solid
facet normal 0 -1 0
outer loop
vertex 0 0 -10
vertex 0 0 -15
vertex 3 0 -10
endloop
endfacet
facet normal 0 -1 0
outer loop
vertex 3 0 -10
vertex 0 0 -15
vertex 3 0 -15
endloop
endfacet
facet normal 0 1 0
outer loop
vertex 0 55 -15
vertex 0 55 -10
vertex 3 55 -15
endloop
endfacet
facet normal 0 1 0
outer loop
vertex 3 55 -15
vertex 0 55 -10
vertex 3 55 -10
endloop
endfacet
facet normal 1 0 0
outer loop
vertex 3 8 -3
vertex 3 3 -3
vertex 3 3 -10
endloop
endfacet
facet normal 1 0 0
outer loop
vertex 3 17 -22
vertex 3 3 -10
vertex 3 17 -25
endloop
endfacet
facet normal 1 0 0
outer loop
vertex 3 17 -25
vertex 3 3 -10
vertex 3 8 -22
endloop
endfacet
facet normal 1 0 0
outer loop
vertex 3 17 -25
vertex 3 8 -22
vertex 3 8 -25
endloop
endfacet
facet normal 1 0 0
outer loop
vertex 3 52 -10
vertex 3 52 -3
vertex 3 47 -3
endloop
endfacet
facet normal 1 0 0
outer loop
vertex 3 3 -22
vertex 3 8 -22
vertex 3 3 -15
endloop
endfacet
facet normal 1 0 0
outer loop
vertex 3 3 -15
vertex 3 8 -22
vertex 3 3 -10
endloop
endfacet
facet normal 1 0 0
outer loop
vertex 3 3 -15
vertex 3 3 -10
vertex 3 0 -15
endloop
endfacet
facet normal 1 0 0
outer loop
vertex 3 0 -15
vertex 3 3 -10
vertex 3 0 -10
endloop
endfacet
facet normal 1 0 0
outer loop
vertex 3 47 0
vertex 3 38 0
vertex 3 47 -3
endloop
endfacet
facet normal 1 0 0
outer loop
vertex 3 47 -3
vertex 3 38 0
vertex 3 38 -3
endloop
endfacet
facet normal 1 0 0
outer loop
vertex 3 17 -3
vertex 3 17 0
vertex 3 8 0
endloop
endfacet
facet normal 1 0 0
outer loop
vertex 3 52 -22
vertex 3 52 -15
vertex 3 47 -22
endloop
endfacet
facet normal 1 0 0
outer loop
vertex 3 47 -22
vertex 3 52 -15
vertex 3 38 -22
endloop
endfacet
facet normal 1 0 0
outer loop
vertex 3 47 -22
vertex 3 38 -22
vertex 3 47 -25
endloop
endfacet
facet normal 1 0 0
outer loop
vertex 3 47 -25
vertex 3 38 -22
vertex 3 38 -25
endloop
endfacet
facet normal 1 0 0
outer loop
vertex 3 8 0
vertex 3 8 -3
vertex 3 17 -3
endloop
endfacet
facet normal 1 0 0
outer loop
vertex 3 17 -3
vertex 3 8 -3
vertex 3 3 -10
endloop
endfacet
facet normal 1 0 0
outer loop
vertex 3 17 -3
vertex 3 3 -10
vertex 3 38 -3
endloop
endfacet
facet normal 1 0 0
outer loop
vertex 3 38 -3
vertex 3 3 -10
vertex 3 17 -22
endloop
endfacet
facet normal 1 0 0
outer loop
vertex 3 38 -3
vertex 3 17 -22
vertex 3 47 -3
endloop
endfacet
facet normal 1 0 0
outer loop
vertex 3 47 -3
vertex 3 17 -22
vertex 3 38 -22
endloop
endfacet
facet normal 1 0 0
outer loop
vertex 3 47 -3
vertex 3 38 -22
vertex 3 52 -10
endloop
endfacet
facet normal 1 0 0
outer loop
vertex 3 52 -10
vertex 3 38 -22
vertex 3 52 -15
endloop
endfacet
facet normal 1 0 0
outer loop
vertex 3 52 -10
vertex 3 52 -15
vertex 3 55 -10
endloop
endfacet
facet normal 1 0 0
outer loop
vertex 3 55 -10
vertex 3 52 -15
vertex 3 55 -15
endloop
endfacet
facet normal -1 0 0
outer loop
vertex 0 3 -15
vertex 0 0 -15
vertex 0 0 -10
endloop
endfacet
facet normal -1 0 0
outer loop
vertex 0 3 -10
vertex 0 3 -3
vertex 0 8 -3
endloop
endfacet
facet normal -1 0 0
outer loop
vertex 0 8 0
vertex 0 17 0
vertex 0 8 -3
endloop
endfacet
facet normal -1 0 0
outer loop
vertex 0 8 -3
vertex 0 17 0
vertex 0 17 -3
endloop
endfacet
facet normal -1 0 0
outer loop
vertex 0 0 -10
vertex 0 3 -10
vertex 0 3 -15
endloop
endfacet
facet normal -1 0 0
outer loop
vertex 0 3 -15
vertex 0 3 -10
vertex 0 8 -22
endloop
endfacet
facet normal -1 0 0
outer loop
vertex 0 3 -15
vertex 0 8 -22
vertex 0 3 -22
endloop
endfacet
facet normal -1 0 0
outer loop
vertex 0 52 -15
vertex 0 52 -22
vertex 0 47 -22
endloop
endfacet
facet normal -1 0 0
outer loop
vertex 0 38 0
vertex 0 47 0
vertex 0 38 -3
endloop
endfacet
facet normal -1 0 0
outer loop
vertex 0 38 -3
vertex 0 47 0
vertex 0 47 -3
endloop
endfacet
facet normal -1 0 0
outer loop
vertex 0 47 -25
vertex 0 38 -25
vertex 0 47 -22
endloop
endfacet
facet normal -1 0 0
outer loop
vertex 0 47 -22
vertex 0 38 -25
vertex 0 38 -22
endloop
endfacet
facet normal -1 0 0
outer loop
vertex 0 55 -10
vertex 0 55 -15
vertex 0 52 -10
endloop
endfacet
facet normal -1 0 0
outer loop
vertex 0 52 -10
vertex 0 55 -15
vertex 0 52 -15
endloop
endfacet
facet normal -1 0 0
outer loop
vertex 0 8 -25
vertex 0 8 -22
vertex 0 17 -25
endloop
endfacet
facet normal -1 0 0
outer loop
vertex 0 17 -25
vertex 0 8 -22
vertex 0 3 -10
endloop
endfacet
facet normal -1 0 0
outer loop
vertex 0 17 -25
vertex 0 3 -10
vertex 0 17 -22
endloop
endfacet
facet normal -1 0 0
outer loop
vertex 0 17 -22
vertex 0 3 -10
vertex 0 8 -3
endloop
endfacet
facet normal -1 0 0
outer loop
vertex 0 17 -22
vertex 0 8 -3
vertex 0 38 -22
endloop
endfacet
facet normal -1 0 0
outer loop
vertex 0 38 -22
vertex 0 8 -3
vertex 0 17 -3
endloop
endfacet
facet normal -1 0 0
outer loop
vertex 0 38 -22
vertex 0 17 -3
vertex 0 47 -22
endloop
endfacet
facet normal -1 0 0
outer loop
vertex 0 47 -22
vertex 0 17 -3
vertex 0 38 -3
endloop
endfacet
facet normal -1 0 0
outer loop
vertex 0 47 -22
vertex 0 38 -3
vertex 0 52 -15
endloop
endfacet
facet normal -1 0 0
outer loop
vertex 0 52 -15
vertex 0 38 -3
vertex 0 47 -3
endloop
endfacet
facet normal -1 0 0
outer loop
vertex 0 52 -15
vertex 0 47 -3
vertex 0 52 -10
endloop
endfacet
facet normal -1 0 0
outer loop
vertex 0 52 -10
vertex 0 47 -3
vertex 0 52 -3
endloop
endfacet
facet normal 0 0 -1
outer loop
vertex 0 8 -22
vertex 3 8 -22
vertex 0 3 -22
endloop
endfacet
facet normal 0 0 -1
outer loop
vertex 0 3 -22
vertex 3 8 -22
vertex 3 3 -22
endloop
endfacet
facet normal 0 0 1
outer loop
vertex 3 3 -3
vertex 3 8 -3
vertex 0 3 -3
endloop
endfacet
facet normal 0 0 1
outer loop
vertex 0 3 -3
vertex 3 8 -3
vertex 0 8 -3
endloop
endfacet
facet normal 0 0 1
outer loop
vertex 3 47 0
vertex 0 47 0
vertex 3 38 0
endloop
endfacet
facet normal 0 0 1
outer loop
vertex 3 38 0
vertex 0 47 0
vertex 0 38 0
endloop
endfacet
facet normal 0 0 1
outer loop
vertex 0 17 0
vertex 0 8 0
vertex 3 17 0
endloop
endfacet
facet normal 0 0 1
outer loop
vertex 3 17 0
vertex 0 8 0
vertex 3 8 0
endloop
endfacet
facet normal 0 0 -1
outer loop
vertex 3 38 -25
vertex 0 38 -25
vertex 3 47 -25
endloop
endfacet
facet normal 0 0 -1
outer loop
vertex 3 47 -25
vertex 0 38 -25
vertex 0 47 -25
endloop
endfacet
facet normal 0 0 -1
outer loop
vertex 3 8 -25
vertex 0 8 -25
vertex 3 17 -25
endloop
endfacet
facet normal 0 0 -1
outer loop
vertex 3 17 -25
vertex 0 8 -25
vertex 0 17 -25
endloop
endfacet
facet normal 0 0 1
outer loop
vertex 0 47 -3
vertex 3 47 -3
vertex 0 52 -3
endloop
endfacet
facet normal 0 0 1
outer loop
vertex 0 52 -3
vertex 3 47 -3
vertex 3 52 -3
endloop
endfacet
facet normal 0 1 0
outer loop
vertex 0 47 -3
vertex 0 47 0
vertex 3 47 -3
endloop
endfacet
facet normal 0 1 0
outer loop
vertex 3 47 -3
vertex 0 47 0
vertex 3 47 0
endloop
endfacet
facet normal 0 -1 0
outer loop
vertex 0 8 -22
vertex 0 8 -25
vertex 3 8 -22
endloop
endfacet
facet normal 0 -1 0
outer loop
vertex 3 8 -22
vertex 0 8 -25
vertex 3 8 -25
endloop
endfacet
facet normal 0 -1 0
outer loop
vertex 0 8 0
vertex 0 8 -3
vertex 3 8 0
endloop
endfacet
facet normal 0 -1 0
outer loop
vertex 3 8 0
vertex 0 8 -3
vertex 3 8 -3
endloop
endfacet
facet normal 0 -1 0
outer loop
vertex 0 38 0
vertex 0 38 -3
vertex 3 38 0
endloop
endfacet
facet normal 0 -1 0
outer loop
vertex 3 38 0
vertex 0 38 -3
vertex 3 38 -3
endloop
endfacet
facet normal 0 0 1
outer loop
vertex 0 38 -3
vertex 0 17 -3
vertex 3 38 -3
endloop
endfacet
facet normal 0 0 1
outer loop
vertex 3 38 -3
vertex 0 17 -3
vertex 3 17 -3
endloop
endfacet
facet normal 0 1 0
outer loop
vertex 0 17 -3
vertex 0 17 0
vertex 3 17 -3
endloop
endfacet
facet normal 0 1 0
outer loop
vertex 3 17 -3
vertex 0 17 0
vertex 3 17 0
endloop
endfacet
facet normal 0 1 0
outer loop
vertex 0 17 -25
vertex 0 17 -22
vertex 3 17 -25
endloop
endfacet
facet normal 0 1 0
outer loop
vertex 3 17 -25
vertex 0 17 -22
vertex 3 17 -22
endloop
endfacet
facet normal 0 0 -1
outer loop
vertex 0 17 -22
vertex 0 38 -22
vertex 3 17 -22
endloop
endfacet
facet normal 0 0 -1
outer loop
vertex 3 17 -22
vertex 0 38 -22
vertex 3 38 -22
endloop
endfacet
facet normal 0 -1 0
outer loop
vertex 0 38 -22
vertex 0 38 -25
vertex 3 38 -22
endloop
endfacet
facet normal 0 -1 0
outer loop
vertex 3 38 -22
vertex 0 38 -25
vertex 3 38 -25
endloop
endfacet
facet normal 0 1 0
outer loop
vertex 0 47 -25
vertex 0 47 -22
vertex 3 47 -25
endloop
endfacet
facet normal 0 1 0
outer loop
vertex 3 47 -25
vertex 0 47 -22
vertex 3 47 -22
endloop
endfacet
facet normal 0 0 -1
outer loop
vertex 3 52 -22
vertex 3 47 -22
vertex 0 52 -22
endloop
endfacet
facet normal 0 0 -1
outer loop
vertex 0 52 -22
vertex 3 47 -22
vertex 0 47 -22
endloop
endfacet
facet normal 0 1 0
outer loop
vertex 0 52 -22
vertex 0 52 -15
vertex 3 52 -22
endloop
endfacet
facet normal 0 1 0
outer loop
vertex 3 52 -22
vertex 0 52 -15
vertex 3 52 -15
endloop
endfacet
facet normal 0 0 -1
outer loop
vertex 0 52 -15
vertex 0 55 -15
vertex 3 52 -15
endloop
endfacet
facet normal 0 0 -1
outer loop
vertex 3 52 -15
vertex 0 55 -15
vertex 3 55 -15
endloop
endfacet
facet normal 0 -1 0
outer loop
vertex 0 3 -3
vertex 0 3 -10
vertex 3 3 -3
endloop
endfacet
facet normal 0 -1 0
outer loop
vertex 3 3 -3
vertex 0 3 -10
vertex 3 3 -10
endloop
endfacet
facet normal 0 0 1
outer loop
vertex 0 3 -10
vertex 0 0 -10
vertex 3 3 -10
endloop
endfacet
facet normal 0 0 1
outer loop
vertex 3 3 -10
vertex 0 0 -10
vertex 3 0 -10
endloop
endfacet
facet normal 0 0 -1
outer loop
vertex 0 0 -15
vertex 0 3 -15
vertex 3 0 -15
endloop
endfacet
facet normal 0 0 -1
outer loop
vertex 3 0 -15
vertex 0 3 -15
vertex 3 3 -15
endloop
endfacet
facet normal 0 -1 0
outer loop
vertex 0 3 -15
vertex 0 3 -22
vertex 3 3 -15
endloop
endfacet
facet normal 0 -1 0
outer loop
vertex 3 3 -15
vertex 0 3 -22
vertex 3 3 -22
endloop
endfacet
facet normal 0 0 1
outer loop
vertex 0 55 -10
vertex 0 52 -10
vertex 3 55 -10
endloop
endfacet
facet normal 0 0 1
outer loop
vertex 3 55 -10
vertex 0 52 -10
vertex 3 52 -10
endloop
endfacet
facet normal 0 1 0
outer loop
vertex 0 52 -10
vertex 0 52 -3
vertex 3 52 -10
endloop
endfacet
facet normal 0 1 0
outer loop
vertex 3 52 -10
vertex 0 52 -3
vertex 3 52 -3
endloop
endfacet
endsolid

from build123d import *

# Parameters (mm, degrees)
SKETCH_2_W          = 25
SKETCH_2_H          = 55
EXTRUDE_1_DEPTH     = 3
SKETCH_3_W          = 3
SKETCH_3_H          = 8
SKETCH_3_H_2        = 21
CUT_EXTRUDE_1_DEPTH = 4
SKETCH_4_W          = 7
SKETCH_4_H          = 3
CUT_EXTRUDE_2_DEPTH = 4


with BuildPart() as part:
    # 스케치2 → 보스-돌출1 (new body)
    with BuildSketch(Plane(origin=(0, 0, 0), x_dir=(0, 0, -1), z_dir=(1, 0, 0))):
        with Locations((12.5, 27.5)):
            Rectangle(SKETCH_2_W, SKETCH_2_H)
    extrude(amount=EXTRUDE_1_DEPTH)

    # 스케치3 → 컷-돌출1 (cut, through all)
    with BuildSketch(Plane(origin=(3, 0, 0), x_dir=(0, 0, -1), z_dir=(1, 0, 0))):
        with Locations((1.5, 51)):
            Rectangle(SKETCH_3_W, SKETCH_3_H)
        with Locations((23.5, 51)):
            Rectangle(SKETCH_3_W, SKETCH_3_H)
        with Locations((23.5, 27.5)):
            Rectangle(SKETCH_3_W, SKETCH_3_H_2)
        with Locations((1.5, 27.5)):
            Rectangle(SKETCH_3_W, SKETCH_3_H_2)
        with Locations((1.5, 4)):
            Rectangle(SKETCH_3_W, SKETCH_3_H)
        with Locations((23.5, 4)):
            Rectangle(SKETCH_3_W, SKETCH_3_H)
    extrude(amount=-CUT_EXTRUDE_1_DEPTH, mode=Mode.SUBTRACT)

    # 스케치4 → 컷-돌출2 (cut, through all)
    with BuildSketch(Plane(origin=(3, 0, 0), x_dir=(0, 0, -1), z_dir=(1, 0, 0))):
        with Locations((6.5, 53.5)):
            Rectangle(SKETCH_4_W, SKETCH_4_H)
        with Locations((18.5, 53.5)):
            Rectangle(SKETCH_4_W, SKETCH_4_H)
        with Locations((18.5, 1.5)):
            Rectangle(SKETCH_4_W, SKETCH_4_H)
        with Locations((6.5, 1.5)):
            Rectangle(SKETCH_4_W, SKETCH_4_H)
    extrude(amount=-CUT_EXTRUDE_2_DEPTH, mode=Mode.SUBTRACT)


solid = part.part
